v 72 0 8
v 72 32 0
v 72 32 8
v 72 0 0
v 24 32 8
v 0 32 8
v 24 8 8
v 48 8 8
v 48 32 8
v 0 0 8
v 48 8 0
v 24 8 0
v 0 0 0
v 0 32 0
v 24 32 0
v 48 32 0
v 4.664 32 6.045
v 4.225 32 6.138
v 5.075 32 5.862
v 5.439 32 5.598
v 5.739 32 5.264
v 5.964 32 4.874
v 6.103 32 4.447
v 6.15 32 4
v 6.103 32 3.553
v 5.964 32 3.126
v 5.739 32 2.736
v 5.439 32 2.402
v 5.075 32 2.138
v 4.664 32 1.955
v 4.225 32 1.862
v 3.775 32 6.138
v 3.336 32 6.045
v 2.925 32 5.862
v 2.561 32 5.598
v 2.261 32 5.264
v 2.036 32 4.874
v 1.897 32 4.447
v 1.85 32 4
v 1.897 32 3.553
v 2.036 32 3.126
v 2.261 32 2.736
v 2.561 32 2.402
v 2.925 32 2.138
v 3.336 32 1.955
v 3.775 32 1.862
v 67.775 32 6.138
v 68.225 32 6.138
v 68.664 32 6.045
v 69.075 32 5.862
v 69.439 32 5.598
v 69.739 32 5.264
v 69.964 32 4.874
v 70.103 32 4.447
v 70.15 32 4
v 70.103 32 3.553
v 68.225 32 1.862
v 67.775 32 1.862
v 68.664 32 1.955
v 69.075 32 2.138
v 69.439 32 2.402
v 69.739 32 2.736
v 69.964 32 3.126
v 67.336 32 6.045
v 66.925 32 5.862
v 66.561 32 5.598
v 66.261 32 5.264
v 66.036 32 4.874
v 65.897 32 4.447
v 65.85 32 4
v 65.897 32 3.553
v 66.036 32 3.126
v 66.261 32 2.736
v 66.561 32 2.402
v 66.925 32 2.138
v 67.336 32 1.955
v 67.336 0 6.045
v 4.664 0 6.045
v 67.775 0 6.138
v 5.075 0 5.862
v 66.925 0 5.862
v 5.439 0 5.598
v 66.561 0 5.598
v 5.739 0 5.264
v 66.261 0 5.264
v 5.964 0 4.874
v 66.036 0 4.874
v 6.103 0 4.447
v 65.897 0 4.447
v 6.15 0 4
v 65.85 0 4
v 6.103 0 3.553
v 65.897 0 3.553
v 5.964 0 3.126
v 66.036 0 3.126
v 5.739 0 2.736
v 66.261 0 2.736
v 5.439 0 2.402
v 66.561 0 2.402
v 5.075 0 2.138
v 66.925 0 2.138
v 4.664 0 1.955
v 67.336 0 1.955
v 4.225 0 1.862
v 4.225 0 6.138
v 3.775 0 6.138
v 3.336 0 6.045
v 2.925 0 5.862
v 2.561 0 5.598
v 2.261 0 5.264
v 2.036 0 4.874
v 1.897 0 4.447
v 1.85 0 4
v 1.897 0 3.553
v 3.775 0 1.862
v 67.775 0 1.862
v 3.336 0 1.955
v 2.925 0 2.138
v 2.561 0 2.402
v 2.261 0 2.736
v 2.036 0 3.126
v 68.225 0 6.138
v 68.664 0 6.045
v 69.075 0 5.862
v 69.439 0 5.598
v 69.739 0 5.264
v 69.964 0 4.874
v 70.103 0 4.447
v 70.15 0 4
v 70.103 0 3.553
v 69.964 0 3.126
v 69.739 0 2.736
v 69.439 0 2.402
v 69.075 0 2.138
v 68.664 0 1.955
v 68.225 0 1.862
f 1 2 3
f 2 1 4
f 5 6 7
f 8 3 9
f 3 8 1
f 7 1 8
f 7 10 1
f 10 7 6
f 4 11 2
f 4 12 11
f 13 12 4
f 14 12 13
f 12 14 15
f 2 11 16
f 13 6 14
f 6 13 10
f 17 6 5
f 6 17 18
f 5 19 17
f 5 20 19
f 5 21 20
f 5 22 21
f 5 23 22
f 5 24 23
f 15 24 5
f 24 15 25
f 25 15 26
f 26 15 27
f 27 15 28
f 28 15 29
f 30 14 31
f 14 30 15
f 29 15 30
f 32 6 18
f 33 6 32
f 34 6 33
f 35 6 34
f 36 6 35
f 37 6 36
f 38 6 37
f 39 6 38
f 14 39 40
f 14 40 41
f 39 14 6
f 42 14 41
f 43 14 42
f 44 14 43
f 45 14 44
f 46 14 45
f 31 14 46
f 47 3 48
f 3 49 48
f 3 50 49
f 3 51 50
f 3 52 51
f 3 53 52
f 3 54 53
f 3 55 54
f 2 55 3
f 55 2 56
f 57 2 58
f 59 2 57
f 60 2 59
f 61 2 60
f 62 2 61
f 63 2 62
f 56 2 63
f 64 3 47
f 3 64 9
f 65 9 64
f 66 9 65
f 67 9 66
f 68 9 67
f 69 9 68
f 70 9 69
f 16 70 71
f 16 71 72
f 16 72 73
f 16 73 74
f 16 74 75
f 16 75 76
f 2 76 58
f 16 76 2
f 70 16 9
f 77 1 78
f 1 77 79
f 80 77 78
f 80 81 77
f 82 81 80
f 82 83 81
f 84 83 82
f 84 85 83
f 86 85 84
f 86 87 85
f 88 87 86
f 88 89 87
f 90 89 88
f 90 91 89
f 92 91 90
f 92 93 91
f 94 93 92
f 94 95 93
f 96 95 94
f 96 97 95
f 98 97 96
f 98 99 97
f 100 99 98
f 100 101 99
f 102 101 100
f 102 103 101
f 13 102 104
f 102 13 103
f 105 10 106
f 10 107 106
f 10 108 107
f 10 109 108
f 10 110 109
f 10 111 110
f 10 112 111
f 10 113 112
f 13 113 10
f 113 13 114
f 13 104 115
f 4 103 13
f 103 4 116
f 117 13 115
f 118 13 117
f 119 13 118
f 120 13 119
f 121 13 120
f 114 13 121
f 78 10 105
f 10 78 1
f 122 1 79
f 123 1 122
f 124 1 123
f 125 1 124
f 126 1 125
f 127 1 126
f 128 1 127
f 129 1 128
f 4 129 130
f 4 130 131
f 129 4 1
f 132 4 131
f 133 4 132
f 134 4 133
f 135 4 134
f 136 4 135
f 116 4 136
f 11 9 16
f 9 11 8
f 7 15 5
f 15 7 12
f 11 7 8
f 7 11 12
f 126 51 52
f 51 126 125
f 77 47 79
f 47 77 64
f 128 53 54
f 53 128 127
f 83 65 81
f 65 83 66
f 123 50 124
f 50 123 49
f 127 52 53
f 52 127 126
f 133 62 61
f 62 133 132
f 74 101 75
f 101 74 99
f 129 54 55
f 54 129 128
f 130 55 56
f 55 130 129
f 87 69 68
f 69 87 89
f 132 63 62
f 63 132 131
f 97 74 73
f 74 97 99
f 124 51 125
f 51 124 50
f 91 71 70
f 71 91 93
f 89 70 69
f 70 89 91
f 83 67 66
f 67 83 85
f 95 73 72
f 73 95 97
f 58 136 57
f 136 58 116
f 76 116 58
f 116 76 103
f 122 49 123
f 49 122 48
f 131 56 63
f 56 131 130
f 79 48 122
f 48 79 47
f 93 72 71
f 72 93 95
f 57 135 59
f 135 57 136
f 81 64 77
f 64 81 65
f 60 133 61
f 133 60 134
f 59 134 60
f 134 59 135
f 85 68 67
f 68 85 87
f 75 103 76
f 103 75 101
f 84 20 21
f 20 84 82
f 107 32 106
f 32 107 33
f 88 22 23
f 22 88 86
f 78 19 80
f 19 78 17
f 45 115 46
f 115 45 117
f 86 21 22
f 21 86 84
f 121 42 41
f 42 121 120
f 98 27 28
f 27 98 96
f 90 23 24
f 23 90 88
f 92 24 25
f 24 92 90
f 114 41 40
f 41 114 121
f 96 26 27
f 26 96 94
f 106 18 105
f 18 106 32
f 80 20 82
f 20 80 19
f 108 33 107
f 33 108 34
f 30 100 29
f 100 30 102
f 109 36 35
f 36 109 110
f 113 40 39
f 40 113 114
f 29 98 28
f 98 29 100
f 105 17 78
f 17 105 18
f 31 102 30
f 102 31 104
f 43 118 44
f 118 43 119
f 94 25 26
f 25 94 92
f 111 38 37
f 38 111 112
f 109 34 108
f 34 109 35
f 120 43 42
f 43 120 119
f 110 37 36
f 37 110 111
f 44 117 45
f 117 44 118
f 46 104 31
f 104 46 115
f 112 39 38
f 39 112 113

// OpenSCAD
beam_width     = 32;
hole_diameter  = 4.3;
hole_radius    = hole_diameter / 2;

difference() {
    // Draw the beam...
    cube([72,32,8]);
    
    translate([24,8,-1])
    cube([24,25,12]);

    rotate([90,0,0])
    translate([68, 4, -40])
    cylinder(r=2.15,45, $fn=30);
    
    rotate([90,0,0])
    translate([4, 4, -40])
    cylinder(r=2.15,45, $fn=30);
}
